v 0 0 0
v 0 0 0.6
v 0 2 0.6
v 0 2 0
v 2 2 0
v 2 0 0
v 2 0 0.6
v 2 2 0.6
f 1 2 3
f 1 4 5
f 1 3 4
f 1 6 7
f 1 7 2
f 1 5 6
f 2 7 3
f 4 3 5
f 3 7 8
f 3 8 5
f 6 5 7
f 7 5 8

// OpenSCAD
/* Warning, this is a very basic generator with a lot of approximation 
input data : [UPDFN, 9FW, 2x2x0.6mm, 6, , C, C04-00683C]
generated by com.zoubworld.electronics.cad.model3d.Basic
Date : Sun Feb 15 10:50:49 CET 2026
*/

//body
color("black")
translate([0,0,0])
cube([2.0,2.0,0.6], center=false);
